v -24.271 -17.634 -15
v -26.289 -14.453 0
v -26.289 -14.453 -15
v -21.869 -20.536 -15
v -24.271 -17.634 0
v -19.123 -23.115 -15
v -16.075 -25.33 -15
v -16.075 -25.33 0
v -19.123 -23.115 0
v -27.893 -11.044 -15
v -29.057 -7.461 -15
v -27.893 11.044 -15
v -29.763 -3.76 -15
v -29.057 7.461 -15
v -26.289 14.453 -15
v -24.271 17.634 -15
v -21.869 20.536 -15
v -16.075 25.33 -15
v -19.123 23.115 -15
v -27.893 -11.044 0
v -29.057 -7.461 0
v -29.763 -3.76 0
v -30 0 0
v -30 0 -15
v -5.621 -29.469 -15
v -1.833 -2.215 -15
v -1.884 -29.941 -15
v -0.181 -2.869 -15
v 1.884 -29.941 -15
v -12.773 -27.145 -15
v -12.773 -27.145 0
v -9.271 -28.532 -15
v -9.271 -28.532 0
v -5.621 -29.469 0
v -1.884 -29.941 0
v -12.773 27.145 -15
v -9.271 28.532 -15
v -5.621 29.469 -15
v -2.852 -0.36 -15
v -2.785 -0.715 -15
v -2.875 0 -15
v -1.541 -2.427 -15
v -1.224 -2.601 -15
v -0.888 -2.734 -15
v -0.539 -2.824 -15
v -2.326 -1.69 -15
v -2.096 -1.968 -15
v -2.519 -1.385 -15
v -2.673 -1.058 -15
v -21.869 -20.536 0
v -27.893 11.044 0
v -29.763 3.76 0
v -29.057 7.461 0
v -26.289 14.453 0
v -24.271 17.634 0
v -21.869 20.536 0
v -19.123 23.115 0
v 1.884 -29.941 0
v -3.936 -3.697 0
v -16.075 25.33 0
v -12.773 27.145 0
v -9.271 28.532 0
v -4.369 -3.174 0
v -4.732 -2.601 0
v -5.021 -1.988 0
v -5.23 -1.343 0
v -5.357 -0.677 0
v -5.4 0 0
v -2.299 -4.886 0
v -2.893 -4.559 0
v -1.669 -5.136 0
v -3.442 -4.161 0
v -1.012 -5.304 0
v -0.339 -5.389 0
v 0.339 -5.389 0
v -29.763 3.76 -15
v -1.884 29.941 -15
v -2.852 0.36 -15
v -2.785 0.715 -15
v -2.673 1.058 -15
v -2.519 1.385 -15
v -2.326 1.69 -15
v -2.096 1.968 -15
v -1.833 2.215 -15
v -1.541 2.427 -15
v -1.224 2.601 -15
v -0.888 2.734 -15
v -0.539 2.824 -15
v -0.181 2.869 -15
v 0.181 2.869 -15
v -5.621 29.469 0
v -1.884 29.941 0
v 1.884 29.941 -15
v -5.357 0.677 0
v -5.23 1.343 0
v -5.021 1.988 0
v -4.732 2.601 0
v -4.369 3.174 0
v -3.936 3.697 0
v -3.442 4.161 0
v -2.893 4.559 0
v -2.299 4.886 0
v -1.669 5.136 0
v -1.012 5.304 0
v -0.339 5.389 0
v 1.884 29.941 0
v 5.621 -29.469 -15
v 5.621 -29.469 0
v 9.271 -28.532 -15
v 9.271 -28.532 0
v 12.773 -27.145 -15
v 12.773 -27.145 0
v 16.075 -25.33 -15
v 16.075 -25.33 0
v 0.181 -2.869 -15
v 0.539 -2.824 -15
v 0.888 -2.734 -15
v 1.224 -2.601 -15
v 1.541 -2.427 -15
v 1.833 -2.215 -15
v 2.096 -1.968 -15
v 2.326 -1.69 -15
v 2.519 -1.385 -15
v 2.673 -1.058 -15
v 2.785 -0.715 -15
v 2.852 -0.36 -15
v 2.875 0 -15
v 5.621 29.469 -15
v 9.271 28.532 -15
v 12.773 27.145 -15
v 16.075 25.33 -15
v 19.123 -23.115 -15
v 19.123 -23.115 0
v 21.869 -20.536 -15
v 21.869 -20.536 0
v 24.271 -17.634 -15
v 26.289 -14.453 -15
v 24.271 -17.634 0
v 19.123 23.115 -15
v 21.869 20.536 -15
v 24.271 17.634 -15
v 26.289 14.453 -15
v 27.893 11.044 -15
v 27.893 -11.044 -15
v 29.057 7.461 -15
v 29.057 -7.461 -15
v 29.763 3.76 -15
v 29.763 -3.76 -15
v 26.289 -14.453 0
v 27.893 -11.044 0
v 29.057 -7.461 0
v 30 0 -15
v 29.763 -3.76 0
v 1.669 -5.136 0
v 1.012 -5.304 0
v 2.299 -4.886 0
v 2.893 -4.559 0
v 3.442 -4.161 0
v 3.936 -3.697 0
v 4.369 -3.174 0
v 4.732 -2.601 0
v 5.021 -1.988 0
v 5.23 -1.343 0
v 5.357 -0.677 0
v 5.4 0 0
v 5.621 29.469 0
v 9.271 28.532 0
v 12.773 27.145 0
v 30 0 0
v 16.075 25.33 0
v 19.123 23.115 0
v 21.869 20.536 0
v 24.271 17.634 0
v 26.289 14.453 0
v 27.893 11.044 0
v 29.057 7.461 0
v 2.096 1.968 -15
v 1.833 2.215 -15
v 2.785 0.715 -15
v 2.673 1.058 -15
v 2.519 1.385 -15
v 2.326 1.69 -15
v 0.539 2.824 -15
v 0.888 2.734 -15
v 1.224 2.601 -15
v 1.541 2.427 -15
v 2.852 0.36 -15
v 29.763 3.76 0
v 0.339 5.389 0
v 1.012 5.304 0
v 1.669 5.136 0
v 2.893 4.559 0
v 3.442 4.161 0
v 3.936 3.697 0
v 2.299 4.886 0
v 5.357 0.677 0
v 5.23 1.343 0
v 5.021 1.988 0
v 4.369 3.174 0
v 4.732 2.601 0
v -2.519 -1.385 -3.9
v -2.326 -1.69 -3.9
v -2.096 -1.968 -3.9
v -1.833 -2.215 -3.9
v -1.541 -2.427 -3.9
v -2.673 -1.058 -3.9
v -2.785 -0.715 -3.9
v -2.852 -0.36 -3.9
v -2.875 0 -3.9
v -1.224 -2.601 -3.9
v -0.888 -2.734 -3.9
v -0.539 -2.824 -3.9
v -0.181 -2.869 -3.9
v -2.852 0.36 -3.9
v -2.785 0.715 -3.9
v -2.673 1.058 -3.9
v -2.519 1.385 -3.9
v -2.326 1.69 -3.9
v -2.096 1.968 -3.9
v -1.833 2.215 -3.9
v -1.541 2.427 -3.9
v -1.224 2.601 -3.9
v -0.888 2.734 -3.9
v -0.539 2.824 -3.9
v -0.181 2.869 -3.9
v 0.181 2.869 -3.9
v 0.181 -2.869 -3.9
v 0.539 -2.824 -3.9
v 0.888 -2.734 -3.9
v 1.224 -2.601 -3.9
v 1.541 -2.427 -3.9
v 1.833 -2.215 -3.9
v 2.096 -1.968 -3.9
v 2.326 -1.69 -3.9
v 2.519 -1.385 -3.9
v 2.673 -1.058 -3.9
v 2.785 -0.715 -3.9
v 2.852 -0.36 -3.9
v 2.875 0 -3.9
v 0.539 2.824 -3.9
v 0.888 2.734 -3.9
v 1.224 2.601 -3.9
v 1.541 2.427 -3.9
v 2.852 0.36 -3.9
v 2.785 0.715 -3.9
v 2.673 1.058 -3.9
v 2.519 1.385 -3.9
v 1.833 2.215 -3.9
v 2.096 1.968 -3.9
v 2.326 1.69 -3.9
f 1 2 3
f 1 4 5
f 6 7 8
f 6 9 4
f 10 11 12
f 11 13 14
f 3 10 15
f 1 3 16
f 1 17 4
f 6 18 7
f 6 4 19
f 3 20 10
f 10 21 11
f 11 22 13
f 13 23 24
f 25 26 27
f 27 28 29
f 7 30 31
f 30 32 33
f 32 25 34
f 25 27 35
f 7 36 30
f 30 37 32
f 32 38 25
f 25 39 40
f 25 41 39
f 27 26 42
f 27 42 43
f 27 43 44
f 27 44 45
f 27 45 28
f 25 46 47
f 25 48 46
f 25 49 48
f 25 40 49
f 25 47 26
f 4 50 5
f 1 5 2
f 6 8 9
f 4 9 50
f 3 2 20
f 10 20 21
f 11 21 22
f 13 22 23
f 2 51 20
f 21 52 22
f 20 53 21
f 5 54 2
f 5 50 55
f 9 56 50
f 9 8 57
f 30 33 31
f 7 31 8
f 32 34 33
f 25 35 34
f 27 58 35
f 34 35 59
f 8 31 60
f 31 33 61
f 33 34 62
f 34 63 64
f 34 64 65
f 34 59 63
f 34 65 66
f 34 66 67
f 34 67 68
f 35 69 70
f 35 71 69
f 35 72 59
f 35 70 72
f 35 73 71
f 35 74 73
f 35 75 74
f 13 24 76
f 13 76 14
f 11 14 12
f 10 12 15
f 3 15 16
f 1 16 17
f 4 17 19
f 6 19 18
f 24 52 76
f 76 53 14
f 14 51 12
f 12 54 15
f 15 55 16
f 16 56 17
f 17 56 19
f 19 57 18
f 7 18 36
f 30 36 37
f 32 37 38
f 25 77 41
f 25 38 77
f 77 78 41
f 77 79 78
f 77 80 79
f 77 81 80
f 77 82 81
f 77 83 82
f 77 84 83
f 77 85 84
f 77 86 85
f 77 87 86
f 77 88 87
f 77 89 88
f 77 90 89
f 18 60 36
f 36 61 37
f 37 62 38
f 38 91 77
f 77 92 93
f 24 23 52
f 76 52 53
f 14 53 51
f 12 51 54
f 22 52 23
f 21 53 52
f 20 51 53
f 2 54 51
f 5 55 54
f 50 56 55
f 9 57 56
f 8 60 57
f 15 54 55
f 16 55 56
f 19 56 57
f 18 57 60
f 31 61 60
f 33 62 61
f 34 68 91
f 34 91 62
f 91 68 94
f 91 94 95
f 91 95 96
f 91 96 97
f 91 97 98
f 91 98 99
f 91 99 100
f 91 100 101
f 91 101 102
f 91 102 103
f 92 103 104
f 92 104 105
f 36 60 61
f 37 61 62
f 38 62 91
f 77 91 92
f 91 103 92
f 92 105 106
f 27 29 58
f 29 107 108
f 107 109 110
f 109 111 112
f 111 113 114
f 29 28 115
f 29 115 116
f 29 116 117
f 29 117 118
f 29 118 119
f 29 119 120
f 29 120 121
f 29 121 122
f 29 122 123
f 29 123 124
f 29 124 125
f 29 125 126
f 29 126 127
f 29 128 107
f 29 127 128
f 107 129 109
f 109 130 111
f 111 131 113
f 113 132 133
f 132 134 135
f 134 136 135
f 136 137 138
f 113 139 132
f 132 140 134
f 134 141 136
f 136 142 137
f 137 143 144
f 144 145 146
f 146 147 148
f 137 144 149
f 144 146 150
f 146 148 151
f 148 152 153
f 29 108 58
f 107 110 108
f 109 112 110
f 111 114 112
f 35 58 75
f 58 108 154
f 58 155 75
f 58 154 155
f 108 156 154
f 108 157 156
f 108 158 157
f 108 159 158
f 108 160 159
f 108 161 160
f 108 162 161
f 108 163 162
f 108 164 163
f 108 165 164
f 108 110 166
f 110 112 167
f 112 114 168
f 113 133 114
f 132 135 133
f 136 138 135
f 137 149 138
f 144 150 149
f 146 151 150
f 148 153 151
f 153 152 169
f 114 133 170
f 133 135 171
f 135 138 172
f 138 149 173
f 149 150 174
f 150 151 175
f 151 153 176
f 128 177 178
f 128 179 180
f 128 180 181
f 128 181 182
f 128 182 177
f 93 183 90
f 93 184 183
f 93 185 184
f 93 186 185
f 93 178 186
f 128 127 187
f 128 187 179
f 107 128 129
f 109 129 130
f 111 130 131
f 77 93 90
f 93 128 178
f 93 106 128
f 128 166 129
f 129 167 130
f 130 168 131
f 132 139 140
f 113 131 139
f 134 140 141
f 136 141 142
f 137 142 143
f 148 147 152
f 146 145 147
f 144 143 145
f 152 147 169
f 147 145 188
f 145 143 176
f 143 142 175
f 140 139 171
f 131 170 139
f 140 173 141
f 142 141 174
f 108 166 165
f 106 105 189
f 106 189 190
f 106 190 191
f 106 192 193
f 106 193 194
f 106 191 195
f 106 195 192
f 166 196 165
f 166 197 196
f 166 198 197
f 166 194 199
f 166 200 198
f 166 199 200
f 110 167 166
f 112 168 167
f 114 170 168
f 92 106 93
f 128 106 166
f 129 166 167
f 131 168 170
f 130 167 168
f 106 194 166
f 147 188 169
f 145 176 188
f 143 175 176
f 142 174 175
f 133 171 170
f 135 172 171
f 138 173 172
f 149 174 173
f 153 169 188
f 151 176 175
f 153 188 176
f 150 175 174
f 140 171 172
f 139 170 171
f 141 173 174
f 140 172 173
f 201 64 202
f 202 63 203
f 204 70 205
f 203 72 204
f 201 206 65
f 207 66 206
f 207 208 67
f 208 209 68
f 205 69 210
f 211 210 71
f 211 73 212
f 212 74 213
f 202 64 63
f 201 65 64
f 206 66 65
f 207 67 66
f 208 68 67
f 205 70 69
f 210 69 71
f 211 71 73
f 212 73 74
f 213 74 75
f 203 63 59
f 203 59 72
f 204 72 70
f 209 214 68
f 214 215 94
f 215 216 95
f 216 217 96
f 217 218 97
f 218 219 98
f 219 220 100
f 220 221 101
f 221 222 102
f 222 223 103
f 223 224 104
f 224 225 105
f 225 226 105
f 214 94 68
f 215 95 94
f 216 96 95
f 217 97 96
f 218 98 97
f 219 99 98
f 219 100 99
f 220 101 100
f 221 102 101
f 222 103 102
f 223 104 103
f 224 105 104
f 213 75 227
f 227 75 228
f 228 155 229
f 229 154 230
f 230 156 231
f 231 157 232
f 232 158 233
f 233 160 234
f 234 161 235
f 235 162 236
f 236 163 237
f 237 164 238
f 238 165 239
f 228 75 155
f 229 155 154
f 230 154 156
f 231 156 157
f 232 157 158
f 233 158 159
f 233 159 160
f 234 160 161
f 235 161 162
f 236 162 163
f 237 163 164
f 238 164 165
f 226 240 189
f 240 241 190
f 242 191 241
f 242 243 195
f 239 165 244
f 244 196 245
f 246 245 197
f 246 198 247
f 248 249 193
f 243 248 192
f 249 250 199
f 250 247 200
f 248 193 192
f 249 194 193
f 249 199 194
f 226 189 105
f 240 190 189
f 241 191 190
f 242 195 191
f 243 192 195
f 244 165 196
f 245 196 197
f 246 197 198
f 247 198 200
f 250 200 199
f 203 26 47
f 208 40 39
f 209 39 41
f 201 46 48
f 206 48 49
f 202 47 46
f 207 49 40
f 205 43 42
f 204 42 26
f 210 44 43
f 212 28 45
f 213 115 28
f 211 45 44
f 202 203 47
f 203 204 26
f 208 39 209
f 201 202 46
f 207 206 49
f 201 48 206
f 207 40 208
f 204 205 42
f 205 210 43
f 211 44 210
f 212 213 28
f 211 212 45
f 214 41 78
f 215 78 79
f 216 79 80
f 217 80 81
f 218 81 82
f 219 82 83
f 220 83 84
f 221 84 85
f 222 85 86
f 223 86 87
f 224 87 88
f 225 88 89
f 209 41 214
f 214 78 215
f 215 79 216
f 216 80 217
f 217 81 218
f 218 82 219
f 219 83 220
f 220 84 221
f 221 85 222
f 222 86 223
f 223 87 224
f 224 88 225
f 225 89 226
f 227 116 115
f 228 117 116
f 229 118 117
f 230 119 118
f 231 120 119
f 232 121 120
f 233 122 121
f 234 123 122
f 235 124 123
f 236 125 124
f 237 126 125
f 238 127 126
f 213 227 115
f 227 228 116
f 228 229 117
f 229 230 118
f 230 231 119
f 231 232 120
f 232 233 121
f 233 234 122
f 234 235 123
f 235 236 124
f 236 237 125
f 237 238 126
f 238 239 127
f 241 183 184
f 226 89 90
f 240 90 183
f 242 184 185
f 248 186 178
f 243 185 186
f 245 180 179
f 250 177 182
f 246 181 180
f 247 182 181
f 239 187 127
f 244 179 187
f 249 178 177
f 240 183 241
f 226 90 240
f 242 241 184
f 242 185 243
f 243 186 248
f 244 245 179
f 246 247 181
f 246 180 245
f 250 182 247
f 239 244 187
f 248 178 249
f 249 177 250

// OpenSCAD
$fn = 50;

difference() {
	union() {
		translate(v = [0, 0, -15.0]) {
			cylinder(h = 15, r = 30.0);
		}
		#translate(v = [0, 0, -18.0]) {
			cylinder(h = 18, r = 2.875);
		}
	}
	union() {
		translate(v = [0, 0, 0]) {
			rotate(a = [0, 0, 0]) {
				difference() {
					union() {
						translate(v = [0, 0, -18.0]) {
							cylinder(h = 18, r = 2.6);
						}
						translate(v = [0, 0, -3.9]) {
							cylinder(h = 3.9, r1 = 2.875, r2 = 5.4);
						}
						translate(v = [0, 0, -18.0]) {
							cylinder(h = 18, r = 2.875);
						}
						translate(v = [0, 0, -18.0]) {
							cylinder(h = 18, r = 2.6);
						}
					}
					union();
				}
			}
		}
	}
}
